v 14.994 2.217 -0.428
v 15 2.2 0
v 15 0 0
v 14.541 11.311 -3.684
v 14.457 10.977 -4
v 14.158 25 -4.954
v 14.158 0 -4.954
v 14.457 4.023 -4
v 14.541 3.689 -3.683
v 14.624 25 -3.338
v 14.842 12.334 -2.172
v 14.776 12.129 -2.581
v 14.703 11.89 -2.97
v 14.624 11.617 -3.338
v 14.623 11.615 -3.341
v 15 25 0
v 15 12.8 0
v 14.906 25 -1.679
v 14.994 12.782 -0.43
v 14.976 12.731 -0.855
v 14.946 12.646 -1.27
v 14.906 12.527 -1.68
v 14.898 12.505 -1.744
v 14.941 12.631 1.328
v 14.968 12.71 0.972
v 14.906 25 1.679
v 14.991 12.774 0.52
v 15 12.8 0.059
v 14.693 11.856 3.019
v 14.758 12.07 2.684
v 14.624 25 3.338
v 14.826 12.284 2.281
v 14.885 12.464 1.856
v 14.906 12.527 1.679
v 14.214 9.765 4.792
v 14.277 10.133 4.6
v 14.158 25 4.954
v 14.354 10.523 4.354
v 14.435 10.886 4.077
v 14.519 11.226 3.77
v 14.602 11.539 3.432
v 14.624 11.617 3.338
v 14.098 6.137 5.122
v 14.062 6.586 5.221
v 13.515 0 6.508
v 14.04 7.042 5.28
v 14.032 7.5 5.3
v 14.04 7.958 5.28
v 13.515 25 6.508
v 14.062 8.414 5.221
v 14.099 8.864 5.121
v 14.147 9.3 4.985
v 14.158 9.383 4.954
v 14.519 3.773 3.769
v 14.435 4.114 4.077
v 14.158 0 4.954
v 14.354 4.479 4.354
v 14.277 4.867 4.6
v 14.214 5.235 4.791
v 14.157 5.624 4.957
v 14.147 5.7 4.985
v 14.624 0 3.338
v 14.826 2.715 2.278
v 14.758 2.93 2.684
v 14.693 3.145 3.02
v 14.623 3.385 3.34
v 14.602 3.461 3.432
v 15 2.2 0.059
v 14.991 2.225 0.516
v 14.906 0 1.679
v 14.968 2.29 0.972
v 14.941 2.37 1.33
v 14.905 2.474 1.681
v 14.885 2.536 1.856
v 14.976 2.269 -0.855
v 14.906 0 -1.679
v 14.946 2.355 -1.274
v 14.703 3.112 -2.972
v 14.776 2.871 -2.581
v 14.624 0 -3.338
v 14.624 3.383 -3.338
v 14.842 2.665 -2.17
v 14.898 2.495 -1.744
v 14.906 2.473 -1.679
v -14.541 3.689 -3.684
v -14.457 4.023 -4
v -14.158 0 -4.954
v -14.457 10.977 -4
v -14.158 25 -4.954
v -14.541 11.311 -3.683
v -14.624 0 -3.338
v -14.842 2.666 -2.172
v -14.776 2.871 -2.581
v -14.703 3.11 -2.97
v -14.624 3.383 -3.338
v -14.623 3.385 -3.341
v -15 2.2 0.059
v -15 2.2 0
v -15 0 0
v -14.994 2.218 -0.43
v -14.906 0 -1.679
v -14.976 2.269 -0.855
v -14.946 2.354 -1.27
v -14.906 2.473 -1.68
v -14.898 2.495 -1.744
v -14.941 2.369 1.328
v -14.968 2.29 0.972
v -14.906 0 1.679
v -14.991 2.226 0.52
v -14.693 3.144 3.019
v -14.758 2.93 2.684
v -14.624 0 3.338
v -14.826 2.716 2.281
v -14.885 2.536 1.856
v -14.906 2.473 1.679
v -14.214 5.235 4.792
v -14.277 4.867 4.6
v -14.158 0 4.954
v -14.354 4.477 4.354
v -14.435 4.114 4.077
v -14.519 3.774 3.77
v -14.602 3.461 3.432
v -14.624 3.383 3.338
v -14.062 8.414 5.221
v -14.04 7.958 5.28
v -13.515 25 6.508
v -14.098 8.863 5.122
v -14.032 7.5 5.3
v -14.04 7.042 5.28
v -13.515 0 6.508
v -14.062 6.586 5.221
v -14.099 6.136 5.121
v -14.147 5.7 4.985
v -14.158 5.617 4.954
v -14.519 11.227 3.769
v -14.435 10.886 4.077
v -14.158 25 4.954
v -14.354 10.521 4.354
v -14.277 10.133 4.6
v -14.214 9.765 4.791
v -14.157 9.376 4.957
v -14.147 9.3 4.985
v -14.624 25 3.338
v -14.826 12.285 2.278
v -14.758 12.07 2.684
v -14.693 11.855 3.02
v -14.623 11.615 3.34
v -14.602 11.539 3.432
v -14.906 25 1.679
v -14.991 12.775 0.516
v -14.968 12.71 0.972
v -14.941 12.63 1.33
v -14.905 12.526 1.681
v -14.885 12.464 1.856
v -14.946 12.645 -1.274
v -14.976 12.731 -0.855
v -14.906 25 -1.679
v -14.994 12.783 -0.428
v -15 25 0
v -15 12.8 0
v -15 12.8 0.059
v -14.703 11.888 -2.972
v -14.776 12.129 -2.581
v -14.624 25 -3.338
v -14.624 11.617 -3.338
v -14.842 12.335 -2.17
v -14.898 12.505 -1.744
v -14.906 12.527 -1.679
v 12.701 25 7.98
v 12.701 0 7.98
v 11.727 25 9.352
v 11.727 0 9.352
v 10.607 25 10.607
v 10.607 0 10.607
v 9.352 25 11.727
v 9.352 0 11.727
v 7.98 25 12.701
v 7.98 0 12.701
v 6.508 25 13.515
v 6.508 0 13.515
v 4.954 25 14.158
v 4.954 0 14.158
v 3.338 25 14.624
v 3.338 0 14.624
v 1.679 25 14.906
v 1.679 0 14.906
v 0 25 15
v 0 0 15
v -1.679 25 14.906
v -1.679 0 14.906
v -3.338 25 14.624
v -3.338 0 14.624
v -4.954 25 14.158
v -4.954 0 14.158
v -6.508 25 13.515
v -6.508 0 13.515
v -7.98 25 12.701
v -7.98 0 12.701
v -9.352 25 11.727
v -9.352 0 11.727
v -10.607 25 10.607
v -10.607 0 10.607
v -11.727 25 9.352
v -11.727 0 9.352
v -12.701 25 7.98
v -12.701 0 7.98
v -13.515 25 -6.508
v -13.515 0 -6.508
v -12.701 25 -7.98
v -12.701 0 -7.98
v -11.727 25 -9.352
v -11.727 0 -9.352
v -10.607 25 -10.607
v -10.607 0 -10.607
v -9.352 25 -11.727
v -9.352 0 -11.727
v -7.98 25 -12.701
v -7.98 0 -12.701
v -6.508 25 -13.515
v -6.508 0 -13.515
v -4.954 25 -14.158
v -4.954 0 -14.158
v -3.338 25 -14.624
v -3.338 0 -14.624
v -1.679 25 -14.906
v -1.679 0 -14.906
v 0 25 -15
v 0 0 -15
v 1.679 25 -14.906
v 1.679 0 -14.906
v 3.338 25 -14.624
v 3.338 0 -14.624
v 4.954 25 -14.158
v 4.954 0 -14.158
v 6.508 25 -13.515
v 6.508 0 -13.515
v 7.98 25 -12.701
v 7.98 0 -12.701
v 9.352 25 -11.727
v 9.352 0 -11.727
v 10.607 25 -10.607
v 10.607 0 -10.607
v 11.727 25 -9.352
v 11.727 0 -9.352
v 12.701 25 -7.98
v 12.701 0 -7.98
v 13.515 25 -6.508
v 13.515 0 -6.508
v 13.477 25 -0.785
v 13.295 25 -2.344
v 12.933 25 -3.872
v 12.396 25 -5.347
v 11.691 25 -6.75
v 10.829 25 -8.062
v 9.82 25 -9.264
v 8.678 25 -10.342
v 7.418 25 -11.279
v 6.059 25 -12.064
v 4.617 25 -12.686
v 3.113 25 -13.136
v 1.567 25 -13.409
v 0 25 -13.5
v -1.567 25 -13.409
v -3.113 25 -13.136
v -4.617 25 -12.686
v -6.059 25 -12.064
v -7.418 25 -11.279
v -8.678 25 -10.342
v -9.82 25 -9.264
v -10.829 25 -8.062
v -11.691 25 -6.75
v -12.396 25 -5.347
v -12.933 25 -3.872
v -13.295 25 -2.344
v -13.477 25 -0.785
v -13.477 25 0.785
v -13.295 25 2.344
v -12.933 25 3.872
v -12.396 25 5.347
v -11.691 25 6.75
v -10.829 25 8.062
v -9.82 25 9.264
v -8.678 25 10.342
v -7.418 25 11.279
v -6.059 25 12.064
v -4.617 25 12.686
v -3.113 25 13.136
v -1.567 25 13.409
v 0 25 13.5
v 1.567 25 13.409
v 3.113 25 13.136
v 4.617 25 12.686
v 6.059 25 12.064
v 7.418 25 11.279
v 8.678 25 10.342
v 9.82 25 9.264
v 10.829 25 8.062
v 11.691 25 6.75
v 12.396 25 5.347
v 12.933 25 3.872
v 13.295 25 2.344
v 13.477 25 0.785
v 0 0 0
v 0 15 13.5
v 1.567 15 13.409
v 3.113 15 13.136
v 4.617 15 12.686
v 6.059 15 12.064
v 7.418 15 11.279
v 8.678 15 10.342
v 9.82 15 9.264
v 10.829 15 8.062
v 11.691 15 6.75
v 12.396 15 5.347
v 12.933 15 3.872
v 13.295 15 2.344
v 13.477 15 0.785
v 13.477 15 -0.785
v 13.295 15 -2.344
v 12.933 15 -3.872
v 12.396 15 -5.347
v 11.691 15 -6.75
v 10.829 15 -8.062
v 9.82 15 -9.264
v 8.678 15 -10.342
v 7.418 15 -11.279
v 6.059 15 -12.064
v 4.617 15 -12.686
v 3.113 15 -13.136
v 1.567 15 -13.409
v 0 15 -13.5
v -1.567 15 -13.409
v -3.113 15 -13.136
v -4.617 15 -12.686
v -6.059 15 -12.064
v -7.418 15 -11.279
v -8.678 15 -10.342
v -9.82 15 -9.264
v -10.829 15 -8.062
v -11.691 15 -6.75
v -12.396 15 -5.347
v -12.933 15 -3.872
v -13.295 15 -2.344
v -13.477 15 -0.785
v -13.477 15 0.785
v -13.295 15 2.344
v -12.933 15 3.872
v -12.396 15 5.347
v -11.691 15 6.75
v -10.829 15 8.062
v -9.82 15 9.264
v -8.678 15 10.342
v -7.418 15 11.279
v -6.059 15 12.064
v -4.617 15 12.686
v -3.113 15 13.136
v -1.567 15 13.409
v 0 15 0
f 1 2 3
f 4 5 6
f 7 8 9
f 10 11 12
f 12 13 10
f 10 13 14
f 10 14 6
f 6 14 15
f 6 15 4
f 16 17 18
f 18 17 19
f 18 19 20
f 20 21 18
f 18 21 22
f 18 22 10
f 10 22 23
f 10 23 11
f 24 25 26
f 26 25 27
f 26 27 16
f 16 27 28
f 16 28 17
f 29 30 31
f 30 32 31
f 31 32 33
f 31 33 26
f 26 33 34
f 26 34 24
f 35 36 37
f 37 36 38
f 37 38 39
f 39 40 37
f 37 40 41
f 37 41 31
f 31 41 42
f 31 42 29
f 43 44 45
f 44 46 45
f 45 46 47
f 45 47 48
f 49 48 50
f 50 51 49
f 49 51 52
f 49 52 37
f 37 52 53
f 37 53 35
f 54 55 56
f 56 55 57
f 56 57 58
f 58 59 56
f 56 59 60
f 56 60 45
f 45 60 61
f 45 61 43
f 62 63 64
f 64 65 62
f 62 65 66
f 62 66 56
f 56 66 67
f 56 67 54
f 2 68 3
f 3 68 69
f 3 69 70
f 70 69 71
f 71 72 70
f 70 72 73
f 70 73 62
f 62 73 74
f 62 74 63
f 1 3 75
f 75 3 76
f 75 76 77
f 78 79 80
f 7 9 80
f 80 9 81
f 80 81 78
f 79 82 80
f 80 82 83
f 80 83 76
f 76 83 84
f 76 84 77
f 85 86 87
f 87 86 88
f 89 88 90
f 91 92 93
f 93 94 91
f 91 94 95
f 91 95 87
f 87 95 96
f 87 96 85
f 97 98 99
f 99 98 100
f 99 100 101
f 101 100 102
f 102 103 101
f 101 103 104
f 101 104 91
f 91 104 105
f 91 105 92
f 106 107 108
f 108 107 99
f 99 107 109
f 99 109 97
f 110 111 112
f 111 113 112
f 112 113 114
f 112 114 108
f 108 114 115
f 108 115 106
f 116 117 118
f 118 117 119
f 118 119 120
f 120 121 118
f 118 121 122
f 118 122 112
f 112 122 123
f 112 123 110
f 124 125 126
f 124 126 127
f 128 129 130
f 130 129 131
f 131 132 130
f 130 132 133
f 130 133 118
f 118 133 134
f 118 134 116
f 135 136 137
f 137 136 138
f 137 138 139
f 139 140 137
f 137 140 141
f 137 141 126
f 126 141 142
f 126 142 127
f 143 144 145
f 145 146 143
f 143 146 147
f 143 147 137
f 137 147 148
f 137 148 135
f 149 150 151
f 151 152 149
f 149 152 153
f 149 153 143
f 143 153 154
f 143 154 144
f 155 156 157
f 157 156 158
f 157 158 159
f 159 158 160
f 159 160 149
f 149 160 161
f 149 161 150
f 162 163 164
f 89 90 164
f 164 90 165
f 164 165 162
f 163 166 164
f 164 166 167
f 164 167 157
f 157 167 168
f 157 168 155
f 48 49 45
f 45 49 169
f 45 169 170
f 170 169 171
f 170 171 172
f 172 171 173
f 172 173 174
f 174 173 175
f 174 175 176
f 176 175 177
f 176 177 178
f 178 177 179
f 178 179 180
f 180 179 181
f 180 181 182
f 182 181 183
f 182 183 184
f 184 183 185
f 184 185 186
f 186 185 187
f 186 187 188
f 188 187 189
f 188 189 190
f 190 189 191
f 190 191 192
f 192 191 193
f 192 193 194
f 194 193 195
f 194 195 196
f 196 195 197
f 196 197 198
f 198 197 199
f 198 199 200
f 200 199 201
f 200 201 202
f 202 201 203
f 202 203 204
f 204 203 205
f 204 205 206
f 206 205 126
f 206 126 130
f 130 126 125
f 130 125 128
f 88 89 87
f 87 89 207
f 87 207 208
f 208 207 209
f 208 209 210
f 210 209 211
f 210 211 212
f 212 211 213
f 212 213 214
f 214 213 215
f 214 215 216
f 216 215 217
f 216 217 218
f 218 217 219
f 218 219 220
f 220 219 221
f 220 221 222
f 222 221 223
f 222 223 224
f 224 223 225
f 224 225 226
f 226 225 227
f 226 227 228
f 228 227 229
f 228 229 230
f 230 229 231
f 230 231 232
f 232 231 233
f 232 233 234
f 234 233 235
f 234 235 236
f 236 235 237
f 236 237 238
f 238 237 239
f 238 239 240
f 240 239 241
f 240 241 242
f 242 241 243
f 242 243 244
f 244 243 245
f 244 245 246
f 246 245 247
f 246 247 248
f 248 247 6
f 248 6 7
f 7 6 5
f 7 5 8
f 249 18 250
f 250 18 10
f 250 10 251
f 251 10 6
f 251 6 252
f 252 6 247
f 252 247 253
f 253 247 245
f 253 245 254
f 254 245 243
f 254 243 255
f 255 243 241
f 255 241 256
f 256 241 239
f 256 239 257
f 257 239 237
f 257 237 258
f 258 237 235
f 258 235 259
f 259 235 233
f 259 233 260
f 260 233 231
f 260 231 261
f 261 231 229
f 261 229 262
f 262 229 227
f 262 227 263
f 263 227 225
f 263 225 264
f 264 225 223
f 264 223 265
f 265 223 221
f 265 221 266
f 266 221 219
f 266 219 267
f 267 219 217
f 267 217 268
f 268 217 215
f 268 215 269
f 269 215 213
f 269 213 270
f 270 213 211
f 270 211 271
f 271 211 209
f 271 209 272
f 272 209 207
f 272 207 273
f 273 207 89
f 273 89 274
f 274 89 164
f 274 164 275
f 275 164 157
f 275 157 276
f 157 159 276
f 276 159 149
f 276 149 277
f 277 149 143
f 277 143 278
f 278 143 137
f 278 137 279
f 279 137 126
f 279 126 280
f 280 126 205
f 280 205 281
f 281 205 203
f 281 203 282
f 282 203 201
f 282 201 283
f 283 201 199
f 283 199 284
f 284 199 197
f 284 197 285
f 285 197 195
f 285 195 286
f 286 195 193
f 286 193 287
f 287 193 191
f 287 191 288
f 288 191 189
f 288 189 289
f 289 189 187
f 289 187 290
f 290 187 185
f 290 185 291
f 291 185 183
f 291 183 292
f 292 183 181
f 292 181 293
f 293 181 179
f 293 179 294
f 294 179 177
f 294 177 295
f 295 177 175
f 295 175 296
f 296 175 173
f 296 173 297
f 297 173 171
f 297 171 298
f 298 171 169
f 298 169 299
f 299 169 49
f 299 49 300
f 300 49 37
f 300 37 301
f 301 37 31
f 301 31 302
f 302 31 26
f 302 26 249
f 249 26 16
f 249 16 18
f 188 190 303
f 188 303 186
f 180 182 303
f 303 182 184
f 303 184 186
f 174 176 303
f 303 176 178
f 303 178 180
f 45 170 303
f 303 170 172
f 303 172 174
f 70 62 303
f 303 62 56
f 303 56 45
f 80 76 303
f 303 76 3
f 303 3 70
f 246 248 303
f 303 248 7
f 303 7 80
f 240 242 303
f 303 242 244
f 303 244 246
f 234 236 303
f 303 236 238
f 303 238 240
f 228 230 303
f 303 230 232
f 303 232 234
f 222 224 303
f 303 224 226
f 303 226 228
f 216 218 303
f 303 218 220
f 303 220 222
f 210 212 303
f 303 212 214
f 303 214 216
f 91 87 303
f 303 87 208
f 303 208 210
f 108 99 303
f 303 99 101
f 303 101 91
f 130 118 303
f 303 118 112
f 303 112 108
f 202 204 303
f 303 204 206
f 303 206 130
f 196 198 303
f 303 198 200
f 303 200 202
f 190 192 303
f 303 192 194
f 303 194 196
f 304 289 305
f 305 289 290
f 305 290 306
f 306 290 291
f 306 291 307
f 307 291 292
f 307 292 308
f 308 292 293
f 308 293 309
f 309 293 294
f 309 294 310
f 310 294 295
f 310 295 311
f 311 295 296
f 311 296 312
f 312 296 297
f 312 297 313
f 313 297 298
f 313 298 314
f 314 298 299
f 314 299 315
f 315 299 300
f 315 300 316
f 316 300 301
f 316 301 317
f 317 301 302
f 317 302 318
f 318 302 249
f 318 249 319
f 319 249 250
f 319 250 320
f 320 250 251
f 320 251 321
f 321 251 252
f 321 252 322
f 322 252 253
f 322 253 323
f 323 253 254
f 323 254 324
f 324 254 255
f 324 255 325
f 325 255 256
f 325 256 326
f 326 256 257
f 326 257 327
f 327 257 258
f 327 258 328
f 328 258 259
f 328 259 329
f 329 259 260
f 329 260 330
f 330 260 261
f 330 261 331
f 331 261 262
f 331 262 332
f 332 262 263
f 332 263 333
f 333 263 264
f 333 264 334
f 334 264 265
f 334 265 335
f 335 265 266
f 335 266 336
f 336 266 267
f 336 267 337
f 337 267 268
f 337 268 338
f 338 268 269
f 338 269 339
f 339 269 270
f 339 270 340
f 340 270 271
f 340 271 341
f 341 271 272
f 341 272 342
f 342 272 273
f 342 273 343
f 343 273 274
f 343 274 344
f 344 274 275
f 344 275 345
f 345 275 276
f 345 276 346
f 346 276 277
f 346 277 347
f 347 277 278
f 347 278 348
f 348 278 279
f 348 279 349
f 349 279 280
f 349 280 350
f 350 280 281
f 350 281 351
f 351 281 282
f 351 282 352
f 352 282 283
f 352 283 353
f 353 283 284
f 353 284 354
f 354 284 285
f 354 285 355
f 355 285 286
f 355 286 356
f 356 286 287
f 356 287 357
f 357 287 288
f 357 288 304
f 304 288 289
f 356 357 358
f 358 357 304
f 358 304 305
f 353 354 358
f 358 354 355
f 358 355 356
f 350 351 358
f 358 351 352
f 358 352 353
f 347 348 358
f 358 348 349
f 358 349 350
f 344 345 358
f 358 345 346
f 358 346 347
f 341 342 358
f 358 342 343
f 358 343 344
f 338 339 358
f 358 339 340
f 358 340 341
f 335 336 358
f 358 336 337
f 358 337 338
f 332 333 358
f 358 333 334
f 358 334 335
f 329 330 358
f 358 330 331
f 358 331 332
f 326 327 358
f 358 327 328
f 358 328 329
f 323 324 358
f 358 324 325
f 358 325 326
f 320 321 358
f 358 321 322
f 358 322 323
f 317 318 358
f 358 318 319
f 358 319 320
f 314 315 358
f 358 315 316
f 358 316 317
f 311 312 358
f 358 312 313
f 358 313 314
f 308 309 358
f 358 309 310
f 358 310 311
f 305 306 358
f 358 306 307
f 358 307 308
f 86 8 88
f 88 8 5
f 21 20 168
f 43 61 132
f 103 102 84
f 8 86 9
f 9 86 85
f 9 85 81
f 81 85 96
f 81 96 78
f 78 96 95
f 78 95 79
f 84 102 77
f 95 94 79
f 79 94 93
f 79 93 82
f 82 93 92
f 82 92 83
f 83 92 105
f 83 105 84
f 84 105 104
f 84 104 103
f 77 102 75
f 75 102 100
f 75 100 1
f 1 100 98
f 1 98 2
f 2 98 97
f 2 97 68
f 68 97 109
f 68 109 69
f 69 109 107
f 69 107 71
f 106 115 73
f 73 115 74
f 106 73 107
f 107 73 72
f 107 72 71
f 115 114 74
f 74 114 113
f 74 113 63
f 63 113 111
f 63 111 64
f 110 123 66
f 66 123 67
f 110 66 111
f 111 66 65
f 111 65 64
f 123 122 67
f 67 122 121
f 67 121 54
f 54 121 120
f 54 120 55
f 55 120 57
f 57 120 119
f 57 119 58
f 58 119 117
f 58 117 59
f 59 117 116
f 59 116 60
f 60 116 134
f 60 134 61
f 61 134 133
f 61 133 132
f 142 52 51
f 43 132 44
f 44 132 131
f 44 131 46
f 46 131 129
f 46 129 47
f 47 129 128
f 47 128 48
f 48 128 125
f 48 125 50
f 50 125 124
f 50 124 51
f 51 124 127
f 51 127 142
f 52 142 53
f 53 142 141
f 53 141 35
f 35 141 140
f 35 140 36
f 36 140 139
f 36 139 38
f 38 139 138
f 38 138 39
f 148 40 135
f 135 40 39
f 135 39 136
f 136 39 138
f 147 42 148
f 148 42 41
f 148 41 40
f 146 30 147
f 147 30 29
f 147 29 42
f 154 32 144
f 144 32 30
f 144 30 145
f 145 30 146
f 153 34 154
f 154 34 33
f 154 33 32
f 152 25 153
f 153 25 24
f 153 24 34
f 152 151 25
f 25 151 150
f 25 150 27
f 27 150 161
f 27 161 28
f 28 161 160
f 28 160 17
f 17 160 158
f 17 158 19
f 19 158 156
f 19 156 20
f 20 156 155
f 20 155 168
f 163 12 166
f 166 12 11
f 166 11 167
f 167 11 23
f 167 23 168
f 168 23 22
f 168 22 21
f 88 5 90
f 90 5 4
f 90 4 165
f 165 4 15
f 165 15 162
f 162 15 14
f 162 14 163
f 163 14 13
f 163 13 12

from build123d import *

# Parameters (mm, degrees)
ESBO_O1_R                  = 15
RESSALTO_EXTRUS_O1_DEPTH   = 25
ESBO_O2_R                  = 13.5
CORTE_EXTRUS_O1_DEPTH      = 10
CORTE_EXTRUS_O3_DEPTH      = 16
CORTE_EXTRUS_O3_DEPTH_BACK = 16


with BuildPart() as part:
    # Esboço1 → Ressalto-extrusão1 (new body)
    with BuildSketch(Plane(origin=(0, 0, 0), x_dir=(1, 0, 0), z_dir=(0, 1, 0))):
        Circle(ESBO_O1_R)
    extrude(amount=RESSALTO_EXTRUS_O1_DEPTH)

    # Esboço2 → Corte-extrusão1 (cut)
    with BuildSketch(Plane(origin=(0, 25, 0), x_dir=(1, 0, 0), z_dir=(0, 1, 0))):
        Circle(ESBO_O2_R)
    extrude(amount=-CORTE_EXTRUS_O1_DEPTH, mode=Mode.SUBTRACT)

    # Esboço4 → Corte-extrusão3 (cut, two sides)
    with BuildSketch(Plane(origin=(0, 0, 0), x_dir=(0, 0, -1), z_dir=(1, 0, 0))) as corte_extrus_o3_sk:
        with BuildLine():
            ThreePointArc((4, 10.97706773), (-5.3, 7.5), (4, 4.02293227))
            Line((4, 4.02293227), (4, 10.97706773))
        make_face()
    extrude(amount=CORTE_EXTRUS_O3_DEPTH, mode=Mode.SUBTRACT)
    extrude(corte_extrus_o3_sk.sketch, amount=-CORTE_EXTRUS_O3_DEPTH_BACK, mode=Mode.SUBTRACT)


solid = part.part
